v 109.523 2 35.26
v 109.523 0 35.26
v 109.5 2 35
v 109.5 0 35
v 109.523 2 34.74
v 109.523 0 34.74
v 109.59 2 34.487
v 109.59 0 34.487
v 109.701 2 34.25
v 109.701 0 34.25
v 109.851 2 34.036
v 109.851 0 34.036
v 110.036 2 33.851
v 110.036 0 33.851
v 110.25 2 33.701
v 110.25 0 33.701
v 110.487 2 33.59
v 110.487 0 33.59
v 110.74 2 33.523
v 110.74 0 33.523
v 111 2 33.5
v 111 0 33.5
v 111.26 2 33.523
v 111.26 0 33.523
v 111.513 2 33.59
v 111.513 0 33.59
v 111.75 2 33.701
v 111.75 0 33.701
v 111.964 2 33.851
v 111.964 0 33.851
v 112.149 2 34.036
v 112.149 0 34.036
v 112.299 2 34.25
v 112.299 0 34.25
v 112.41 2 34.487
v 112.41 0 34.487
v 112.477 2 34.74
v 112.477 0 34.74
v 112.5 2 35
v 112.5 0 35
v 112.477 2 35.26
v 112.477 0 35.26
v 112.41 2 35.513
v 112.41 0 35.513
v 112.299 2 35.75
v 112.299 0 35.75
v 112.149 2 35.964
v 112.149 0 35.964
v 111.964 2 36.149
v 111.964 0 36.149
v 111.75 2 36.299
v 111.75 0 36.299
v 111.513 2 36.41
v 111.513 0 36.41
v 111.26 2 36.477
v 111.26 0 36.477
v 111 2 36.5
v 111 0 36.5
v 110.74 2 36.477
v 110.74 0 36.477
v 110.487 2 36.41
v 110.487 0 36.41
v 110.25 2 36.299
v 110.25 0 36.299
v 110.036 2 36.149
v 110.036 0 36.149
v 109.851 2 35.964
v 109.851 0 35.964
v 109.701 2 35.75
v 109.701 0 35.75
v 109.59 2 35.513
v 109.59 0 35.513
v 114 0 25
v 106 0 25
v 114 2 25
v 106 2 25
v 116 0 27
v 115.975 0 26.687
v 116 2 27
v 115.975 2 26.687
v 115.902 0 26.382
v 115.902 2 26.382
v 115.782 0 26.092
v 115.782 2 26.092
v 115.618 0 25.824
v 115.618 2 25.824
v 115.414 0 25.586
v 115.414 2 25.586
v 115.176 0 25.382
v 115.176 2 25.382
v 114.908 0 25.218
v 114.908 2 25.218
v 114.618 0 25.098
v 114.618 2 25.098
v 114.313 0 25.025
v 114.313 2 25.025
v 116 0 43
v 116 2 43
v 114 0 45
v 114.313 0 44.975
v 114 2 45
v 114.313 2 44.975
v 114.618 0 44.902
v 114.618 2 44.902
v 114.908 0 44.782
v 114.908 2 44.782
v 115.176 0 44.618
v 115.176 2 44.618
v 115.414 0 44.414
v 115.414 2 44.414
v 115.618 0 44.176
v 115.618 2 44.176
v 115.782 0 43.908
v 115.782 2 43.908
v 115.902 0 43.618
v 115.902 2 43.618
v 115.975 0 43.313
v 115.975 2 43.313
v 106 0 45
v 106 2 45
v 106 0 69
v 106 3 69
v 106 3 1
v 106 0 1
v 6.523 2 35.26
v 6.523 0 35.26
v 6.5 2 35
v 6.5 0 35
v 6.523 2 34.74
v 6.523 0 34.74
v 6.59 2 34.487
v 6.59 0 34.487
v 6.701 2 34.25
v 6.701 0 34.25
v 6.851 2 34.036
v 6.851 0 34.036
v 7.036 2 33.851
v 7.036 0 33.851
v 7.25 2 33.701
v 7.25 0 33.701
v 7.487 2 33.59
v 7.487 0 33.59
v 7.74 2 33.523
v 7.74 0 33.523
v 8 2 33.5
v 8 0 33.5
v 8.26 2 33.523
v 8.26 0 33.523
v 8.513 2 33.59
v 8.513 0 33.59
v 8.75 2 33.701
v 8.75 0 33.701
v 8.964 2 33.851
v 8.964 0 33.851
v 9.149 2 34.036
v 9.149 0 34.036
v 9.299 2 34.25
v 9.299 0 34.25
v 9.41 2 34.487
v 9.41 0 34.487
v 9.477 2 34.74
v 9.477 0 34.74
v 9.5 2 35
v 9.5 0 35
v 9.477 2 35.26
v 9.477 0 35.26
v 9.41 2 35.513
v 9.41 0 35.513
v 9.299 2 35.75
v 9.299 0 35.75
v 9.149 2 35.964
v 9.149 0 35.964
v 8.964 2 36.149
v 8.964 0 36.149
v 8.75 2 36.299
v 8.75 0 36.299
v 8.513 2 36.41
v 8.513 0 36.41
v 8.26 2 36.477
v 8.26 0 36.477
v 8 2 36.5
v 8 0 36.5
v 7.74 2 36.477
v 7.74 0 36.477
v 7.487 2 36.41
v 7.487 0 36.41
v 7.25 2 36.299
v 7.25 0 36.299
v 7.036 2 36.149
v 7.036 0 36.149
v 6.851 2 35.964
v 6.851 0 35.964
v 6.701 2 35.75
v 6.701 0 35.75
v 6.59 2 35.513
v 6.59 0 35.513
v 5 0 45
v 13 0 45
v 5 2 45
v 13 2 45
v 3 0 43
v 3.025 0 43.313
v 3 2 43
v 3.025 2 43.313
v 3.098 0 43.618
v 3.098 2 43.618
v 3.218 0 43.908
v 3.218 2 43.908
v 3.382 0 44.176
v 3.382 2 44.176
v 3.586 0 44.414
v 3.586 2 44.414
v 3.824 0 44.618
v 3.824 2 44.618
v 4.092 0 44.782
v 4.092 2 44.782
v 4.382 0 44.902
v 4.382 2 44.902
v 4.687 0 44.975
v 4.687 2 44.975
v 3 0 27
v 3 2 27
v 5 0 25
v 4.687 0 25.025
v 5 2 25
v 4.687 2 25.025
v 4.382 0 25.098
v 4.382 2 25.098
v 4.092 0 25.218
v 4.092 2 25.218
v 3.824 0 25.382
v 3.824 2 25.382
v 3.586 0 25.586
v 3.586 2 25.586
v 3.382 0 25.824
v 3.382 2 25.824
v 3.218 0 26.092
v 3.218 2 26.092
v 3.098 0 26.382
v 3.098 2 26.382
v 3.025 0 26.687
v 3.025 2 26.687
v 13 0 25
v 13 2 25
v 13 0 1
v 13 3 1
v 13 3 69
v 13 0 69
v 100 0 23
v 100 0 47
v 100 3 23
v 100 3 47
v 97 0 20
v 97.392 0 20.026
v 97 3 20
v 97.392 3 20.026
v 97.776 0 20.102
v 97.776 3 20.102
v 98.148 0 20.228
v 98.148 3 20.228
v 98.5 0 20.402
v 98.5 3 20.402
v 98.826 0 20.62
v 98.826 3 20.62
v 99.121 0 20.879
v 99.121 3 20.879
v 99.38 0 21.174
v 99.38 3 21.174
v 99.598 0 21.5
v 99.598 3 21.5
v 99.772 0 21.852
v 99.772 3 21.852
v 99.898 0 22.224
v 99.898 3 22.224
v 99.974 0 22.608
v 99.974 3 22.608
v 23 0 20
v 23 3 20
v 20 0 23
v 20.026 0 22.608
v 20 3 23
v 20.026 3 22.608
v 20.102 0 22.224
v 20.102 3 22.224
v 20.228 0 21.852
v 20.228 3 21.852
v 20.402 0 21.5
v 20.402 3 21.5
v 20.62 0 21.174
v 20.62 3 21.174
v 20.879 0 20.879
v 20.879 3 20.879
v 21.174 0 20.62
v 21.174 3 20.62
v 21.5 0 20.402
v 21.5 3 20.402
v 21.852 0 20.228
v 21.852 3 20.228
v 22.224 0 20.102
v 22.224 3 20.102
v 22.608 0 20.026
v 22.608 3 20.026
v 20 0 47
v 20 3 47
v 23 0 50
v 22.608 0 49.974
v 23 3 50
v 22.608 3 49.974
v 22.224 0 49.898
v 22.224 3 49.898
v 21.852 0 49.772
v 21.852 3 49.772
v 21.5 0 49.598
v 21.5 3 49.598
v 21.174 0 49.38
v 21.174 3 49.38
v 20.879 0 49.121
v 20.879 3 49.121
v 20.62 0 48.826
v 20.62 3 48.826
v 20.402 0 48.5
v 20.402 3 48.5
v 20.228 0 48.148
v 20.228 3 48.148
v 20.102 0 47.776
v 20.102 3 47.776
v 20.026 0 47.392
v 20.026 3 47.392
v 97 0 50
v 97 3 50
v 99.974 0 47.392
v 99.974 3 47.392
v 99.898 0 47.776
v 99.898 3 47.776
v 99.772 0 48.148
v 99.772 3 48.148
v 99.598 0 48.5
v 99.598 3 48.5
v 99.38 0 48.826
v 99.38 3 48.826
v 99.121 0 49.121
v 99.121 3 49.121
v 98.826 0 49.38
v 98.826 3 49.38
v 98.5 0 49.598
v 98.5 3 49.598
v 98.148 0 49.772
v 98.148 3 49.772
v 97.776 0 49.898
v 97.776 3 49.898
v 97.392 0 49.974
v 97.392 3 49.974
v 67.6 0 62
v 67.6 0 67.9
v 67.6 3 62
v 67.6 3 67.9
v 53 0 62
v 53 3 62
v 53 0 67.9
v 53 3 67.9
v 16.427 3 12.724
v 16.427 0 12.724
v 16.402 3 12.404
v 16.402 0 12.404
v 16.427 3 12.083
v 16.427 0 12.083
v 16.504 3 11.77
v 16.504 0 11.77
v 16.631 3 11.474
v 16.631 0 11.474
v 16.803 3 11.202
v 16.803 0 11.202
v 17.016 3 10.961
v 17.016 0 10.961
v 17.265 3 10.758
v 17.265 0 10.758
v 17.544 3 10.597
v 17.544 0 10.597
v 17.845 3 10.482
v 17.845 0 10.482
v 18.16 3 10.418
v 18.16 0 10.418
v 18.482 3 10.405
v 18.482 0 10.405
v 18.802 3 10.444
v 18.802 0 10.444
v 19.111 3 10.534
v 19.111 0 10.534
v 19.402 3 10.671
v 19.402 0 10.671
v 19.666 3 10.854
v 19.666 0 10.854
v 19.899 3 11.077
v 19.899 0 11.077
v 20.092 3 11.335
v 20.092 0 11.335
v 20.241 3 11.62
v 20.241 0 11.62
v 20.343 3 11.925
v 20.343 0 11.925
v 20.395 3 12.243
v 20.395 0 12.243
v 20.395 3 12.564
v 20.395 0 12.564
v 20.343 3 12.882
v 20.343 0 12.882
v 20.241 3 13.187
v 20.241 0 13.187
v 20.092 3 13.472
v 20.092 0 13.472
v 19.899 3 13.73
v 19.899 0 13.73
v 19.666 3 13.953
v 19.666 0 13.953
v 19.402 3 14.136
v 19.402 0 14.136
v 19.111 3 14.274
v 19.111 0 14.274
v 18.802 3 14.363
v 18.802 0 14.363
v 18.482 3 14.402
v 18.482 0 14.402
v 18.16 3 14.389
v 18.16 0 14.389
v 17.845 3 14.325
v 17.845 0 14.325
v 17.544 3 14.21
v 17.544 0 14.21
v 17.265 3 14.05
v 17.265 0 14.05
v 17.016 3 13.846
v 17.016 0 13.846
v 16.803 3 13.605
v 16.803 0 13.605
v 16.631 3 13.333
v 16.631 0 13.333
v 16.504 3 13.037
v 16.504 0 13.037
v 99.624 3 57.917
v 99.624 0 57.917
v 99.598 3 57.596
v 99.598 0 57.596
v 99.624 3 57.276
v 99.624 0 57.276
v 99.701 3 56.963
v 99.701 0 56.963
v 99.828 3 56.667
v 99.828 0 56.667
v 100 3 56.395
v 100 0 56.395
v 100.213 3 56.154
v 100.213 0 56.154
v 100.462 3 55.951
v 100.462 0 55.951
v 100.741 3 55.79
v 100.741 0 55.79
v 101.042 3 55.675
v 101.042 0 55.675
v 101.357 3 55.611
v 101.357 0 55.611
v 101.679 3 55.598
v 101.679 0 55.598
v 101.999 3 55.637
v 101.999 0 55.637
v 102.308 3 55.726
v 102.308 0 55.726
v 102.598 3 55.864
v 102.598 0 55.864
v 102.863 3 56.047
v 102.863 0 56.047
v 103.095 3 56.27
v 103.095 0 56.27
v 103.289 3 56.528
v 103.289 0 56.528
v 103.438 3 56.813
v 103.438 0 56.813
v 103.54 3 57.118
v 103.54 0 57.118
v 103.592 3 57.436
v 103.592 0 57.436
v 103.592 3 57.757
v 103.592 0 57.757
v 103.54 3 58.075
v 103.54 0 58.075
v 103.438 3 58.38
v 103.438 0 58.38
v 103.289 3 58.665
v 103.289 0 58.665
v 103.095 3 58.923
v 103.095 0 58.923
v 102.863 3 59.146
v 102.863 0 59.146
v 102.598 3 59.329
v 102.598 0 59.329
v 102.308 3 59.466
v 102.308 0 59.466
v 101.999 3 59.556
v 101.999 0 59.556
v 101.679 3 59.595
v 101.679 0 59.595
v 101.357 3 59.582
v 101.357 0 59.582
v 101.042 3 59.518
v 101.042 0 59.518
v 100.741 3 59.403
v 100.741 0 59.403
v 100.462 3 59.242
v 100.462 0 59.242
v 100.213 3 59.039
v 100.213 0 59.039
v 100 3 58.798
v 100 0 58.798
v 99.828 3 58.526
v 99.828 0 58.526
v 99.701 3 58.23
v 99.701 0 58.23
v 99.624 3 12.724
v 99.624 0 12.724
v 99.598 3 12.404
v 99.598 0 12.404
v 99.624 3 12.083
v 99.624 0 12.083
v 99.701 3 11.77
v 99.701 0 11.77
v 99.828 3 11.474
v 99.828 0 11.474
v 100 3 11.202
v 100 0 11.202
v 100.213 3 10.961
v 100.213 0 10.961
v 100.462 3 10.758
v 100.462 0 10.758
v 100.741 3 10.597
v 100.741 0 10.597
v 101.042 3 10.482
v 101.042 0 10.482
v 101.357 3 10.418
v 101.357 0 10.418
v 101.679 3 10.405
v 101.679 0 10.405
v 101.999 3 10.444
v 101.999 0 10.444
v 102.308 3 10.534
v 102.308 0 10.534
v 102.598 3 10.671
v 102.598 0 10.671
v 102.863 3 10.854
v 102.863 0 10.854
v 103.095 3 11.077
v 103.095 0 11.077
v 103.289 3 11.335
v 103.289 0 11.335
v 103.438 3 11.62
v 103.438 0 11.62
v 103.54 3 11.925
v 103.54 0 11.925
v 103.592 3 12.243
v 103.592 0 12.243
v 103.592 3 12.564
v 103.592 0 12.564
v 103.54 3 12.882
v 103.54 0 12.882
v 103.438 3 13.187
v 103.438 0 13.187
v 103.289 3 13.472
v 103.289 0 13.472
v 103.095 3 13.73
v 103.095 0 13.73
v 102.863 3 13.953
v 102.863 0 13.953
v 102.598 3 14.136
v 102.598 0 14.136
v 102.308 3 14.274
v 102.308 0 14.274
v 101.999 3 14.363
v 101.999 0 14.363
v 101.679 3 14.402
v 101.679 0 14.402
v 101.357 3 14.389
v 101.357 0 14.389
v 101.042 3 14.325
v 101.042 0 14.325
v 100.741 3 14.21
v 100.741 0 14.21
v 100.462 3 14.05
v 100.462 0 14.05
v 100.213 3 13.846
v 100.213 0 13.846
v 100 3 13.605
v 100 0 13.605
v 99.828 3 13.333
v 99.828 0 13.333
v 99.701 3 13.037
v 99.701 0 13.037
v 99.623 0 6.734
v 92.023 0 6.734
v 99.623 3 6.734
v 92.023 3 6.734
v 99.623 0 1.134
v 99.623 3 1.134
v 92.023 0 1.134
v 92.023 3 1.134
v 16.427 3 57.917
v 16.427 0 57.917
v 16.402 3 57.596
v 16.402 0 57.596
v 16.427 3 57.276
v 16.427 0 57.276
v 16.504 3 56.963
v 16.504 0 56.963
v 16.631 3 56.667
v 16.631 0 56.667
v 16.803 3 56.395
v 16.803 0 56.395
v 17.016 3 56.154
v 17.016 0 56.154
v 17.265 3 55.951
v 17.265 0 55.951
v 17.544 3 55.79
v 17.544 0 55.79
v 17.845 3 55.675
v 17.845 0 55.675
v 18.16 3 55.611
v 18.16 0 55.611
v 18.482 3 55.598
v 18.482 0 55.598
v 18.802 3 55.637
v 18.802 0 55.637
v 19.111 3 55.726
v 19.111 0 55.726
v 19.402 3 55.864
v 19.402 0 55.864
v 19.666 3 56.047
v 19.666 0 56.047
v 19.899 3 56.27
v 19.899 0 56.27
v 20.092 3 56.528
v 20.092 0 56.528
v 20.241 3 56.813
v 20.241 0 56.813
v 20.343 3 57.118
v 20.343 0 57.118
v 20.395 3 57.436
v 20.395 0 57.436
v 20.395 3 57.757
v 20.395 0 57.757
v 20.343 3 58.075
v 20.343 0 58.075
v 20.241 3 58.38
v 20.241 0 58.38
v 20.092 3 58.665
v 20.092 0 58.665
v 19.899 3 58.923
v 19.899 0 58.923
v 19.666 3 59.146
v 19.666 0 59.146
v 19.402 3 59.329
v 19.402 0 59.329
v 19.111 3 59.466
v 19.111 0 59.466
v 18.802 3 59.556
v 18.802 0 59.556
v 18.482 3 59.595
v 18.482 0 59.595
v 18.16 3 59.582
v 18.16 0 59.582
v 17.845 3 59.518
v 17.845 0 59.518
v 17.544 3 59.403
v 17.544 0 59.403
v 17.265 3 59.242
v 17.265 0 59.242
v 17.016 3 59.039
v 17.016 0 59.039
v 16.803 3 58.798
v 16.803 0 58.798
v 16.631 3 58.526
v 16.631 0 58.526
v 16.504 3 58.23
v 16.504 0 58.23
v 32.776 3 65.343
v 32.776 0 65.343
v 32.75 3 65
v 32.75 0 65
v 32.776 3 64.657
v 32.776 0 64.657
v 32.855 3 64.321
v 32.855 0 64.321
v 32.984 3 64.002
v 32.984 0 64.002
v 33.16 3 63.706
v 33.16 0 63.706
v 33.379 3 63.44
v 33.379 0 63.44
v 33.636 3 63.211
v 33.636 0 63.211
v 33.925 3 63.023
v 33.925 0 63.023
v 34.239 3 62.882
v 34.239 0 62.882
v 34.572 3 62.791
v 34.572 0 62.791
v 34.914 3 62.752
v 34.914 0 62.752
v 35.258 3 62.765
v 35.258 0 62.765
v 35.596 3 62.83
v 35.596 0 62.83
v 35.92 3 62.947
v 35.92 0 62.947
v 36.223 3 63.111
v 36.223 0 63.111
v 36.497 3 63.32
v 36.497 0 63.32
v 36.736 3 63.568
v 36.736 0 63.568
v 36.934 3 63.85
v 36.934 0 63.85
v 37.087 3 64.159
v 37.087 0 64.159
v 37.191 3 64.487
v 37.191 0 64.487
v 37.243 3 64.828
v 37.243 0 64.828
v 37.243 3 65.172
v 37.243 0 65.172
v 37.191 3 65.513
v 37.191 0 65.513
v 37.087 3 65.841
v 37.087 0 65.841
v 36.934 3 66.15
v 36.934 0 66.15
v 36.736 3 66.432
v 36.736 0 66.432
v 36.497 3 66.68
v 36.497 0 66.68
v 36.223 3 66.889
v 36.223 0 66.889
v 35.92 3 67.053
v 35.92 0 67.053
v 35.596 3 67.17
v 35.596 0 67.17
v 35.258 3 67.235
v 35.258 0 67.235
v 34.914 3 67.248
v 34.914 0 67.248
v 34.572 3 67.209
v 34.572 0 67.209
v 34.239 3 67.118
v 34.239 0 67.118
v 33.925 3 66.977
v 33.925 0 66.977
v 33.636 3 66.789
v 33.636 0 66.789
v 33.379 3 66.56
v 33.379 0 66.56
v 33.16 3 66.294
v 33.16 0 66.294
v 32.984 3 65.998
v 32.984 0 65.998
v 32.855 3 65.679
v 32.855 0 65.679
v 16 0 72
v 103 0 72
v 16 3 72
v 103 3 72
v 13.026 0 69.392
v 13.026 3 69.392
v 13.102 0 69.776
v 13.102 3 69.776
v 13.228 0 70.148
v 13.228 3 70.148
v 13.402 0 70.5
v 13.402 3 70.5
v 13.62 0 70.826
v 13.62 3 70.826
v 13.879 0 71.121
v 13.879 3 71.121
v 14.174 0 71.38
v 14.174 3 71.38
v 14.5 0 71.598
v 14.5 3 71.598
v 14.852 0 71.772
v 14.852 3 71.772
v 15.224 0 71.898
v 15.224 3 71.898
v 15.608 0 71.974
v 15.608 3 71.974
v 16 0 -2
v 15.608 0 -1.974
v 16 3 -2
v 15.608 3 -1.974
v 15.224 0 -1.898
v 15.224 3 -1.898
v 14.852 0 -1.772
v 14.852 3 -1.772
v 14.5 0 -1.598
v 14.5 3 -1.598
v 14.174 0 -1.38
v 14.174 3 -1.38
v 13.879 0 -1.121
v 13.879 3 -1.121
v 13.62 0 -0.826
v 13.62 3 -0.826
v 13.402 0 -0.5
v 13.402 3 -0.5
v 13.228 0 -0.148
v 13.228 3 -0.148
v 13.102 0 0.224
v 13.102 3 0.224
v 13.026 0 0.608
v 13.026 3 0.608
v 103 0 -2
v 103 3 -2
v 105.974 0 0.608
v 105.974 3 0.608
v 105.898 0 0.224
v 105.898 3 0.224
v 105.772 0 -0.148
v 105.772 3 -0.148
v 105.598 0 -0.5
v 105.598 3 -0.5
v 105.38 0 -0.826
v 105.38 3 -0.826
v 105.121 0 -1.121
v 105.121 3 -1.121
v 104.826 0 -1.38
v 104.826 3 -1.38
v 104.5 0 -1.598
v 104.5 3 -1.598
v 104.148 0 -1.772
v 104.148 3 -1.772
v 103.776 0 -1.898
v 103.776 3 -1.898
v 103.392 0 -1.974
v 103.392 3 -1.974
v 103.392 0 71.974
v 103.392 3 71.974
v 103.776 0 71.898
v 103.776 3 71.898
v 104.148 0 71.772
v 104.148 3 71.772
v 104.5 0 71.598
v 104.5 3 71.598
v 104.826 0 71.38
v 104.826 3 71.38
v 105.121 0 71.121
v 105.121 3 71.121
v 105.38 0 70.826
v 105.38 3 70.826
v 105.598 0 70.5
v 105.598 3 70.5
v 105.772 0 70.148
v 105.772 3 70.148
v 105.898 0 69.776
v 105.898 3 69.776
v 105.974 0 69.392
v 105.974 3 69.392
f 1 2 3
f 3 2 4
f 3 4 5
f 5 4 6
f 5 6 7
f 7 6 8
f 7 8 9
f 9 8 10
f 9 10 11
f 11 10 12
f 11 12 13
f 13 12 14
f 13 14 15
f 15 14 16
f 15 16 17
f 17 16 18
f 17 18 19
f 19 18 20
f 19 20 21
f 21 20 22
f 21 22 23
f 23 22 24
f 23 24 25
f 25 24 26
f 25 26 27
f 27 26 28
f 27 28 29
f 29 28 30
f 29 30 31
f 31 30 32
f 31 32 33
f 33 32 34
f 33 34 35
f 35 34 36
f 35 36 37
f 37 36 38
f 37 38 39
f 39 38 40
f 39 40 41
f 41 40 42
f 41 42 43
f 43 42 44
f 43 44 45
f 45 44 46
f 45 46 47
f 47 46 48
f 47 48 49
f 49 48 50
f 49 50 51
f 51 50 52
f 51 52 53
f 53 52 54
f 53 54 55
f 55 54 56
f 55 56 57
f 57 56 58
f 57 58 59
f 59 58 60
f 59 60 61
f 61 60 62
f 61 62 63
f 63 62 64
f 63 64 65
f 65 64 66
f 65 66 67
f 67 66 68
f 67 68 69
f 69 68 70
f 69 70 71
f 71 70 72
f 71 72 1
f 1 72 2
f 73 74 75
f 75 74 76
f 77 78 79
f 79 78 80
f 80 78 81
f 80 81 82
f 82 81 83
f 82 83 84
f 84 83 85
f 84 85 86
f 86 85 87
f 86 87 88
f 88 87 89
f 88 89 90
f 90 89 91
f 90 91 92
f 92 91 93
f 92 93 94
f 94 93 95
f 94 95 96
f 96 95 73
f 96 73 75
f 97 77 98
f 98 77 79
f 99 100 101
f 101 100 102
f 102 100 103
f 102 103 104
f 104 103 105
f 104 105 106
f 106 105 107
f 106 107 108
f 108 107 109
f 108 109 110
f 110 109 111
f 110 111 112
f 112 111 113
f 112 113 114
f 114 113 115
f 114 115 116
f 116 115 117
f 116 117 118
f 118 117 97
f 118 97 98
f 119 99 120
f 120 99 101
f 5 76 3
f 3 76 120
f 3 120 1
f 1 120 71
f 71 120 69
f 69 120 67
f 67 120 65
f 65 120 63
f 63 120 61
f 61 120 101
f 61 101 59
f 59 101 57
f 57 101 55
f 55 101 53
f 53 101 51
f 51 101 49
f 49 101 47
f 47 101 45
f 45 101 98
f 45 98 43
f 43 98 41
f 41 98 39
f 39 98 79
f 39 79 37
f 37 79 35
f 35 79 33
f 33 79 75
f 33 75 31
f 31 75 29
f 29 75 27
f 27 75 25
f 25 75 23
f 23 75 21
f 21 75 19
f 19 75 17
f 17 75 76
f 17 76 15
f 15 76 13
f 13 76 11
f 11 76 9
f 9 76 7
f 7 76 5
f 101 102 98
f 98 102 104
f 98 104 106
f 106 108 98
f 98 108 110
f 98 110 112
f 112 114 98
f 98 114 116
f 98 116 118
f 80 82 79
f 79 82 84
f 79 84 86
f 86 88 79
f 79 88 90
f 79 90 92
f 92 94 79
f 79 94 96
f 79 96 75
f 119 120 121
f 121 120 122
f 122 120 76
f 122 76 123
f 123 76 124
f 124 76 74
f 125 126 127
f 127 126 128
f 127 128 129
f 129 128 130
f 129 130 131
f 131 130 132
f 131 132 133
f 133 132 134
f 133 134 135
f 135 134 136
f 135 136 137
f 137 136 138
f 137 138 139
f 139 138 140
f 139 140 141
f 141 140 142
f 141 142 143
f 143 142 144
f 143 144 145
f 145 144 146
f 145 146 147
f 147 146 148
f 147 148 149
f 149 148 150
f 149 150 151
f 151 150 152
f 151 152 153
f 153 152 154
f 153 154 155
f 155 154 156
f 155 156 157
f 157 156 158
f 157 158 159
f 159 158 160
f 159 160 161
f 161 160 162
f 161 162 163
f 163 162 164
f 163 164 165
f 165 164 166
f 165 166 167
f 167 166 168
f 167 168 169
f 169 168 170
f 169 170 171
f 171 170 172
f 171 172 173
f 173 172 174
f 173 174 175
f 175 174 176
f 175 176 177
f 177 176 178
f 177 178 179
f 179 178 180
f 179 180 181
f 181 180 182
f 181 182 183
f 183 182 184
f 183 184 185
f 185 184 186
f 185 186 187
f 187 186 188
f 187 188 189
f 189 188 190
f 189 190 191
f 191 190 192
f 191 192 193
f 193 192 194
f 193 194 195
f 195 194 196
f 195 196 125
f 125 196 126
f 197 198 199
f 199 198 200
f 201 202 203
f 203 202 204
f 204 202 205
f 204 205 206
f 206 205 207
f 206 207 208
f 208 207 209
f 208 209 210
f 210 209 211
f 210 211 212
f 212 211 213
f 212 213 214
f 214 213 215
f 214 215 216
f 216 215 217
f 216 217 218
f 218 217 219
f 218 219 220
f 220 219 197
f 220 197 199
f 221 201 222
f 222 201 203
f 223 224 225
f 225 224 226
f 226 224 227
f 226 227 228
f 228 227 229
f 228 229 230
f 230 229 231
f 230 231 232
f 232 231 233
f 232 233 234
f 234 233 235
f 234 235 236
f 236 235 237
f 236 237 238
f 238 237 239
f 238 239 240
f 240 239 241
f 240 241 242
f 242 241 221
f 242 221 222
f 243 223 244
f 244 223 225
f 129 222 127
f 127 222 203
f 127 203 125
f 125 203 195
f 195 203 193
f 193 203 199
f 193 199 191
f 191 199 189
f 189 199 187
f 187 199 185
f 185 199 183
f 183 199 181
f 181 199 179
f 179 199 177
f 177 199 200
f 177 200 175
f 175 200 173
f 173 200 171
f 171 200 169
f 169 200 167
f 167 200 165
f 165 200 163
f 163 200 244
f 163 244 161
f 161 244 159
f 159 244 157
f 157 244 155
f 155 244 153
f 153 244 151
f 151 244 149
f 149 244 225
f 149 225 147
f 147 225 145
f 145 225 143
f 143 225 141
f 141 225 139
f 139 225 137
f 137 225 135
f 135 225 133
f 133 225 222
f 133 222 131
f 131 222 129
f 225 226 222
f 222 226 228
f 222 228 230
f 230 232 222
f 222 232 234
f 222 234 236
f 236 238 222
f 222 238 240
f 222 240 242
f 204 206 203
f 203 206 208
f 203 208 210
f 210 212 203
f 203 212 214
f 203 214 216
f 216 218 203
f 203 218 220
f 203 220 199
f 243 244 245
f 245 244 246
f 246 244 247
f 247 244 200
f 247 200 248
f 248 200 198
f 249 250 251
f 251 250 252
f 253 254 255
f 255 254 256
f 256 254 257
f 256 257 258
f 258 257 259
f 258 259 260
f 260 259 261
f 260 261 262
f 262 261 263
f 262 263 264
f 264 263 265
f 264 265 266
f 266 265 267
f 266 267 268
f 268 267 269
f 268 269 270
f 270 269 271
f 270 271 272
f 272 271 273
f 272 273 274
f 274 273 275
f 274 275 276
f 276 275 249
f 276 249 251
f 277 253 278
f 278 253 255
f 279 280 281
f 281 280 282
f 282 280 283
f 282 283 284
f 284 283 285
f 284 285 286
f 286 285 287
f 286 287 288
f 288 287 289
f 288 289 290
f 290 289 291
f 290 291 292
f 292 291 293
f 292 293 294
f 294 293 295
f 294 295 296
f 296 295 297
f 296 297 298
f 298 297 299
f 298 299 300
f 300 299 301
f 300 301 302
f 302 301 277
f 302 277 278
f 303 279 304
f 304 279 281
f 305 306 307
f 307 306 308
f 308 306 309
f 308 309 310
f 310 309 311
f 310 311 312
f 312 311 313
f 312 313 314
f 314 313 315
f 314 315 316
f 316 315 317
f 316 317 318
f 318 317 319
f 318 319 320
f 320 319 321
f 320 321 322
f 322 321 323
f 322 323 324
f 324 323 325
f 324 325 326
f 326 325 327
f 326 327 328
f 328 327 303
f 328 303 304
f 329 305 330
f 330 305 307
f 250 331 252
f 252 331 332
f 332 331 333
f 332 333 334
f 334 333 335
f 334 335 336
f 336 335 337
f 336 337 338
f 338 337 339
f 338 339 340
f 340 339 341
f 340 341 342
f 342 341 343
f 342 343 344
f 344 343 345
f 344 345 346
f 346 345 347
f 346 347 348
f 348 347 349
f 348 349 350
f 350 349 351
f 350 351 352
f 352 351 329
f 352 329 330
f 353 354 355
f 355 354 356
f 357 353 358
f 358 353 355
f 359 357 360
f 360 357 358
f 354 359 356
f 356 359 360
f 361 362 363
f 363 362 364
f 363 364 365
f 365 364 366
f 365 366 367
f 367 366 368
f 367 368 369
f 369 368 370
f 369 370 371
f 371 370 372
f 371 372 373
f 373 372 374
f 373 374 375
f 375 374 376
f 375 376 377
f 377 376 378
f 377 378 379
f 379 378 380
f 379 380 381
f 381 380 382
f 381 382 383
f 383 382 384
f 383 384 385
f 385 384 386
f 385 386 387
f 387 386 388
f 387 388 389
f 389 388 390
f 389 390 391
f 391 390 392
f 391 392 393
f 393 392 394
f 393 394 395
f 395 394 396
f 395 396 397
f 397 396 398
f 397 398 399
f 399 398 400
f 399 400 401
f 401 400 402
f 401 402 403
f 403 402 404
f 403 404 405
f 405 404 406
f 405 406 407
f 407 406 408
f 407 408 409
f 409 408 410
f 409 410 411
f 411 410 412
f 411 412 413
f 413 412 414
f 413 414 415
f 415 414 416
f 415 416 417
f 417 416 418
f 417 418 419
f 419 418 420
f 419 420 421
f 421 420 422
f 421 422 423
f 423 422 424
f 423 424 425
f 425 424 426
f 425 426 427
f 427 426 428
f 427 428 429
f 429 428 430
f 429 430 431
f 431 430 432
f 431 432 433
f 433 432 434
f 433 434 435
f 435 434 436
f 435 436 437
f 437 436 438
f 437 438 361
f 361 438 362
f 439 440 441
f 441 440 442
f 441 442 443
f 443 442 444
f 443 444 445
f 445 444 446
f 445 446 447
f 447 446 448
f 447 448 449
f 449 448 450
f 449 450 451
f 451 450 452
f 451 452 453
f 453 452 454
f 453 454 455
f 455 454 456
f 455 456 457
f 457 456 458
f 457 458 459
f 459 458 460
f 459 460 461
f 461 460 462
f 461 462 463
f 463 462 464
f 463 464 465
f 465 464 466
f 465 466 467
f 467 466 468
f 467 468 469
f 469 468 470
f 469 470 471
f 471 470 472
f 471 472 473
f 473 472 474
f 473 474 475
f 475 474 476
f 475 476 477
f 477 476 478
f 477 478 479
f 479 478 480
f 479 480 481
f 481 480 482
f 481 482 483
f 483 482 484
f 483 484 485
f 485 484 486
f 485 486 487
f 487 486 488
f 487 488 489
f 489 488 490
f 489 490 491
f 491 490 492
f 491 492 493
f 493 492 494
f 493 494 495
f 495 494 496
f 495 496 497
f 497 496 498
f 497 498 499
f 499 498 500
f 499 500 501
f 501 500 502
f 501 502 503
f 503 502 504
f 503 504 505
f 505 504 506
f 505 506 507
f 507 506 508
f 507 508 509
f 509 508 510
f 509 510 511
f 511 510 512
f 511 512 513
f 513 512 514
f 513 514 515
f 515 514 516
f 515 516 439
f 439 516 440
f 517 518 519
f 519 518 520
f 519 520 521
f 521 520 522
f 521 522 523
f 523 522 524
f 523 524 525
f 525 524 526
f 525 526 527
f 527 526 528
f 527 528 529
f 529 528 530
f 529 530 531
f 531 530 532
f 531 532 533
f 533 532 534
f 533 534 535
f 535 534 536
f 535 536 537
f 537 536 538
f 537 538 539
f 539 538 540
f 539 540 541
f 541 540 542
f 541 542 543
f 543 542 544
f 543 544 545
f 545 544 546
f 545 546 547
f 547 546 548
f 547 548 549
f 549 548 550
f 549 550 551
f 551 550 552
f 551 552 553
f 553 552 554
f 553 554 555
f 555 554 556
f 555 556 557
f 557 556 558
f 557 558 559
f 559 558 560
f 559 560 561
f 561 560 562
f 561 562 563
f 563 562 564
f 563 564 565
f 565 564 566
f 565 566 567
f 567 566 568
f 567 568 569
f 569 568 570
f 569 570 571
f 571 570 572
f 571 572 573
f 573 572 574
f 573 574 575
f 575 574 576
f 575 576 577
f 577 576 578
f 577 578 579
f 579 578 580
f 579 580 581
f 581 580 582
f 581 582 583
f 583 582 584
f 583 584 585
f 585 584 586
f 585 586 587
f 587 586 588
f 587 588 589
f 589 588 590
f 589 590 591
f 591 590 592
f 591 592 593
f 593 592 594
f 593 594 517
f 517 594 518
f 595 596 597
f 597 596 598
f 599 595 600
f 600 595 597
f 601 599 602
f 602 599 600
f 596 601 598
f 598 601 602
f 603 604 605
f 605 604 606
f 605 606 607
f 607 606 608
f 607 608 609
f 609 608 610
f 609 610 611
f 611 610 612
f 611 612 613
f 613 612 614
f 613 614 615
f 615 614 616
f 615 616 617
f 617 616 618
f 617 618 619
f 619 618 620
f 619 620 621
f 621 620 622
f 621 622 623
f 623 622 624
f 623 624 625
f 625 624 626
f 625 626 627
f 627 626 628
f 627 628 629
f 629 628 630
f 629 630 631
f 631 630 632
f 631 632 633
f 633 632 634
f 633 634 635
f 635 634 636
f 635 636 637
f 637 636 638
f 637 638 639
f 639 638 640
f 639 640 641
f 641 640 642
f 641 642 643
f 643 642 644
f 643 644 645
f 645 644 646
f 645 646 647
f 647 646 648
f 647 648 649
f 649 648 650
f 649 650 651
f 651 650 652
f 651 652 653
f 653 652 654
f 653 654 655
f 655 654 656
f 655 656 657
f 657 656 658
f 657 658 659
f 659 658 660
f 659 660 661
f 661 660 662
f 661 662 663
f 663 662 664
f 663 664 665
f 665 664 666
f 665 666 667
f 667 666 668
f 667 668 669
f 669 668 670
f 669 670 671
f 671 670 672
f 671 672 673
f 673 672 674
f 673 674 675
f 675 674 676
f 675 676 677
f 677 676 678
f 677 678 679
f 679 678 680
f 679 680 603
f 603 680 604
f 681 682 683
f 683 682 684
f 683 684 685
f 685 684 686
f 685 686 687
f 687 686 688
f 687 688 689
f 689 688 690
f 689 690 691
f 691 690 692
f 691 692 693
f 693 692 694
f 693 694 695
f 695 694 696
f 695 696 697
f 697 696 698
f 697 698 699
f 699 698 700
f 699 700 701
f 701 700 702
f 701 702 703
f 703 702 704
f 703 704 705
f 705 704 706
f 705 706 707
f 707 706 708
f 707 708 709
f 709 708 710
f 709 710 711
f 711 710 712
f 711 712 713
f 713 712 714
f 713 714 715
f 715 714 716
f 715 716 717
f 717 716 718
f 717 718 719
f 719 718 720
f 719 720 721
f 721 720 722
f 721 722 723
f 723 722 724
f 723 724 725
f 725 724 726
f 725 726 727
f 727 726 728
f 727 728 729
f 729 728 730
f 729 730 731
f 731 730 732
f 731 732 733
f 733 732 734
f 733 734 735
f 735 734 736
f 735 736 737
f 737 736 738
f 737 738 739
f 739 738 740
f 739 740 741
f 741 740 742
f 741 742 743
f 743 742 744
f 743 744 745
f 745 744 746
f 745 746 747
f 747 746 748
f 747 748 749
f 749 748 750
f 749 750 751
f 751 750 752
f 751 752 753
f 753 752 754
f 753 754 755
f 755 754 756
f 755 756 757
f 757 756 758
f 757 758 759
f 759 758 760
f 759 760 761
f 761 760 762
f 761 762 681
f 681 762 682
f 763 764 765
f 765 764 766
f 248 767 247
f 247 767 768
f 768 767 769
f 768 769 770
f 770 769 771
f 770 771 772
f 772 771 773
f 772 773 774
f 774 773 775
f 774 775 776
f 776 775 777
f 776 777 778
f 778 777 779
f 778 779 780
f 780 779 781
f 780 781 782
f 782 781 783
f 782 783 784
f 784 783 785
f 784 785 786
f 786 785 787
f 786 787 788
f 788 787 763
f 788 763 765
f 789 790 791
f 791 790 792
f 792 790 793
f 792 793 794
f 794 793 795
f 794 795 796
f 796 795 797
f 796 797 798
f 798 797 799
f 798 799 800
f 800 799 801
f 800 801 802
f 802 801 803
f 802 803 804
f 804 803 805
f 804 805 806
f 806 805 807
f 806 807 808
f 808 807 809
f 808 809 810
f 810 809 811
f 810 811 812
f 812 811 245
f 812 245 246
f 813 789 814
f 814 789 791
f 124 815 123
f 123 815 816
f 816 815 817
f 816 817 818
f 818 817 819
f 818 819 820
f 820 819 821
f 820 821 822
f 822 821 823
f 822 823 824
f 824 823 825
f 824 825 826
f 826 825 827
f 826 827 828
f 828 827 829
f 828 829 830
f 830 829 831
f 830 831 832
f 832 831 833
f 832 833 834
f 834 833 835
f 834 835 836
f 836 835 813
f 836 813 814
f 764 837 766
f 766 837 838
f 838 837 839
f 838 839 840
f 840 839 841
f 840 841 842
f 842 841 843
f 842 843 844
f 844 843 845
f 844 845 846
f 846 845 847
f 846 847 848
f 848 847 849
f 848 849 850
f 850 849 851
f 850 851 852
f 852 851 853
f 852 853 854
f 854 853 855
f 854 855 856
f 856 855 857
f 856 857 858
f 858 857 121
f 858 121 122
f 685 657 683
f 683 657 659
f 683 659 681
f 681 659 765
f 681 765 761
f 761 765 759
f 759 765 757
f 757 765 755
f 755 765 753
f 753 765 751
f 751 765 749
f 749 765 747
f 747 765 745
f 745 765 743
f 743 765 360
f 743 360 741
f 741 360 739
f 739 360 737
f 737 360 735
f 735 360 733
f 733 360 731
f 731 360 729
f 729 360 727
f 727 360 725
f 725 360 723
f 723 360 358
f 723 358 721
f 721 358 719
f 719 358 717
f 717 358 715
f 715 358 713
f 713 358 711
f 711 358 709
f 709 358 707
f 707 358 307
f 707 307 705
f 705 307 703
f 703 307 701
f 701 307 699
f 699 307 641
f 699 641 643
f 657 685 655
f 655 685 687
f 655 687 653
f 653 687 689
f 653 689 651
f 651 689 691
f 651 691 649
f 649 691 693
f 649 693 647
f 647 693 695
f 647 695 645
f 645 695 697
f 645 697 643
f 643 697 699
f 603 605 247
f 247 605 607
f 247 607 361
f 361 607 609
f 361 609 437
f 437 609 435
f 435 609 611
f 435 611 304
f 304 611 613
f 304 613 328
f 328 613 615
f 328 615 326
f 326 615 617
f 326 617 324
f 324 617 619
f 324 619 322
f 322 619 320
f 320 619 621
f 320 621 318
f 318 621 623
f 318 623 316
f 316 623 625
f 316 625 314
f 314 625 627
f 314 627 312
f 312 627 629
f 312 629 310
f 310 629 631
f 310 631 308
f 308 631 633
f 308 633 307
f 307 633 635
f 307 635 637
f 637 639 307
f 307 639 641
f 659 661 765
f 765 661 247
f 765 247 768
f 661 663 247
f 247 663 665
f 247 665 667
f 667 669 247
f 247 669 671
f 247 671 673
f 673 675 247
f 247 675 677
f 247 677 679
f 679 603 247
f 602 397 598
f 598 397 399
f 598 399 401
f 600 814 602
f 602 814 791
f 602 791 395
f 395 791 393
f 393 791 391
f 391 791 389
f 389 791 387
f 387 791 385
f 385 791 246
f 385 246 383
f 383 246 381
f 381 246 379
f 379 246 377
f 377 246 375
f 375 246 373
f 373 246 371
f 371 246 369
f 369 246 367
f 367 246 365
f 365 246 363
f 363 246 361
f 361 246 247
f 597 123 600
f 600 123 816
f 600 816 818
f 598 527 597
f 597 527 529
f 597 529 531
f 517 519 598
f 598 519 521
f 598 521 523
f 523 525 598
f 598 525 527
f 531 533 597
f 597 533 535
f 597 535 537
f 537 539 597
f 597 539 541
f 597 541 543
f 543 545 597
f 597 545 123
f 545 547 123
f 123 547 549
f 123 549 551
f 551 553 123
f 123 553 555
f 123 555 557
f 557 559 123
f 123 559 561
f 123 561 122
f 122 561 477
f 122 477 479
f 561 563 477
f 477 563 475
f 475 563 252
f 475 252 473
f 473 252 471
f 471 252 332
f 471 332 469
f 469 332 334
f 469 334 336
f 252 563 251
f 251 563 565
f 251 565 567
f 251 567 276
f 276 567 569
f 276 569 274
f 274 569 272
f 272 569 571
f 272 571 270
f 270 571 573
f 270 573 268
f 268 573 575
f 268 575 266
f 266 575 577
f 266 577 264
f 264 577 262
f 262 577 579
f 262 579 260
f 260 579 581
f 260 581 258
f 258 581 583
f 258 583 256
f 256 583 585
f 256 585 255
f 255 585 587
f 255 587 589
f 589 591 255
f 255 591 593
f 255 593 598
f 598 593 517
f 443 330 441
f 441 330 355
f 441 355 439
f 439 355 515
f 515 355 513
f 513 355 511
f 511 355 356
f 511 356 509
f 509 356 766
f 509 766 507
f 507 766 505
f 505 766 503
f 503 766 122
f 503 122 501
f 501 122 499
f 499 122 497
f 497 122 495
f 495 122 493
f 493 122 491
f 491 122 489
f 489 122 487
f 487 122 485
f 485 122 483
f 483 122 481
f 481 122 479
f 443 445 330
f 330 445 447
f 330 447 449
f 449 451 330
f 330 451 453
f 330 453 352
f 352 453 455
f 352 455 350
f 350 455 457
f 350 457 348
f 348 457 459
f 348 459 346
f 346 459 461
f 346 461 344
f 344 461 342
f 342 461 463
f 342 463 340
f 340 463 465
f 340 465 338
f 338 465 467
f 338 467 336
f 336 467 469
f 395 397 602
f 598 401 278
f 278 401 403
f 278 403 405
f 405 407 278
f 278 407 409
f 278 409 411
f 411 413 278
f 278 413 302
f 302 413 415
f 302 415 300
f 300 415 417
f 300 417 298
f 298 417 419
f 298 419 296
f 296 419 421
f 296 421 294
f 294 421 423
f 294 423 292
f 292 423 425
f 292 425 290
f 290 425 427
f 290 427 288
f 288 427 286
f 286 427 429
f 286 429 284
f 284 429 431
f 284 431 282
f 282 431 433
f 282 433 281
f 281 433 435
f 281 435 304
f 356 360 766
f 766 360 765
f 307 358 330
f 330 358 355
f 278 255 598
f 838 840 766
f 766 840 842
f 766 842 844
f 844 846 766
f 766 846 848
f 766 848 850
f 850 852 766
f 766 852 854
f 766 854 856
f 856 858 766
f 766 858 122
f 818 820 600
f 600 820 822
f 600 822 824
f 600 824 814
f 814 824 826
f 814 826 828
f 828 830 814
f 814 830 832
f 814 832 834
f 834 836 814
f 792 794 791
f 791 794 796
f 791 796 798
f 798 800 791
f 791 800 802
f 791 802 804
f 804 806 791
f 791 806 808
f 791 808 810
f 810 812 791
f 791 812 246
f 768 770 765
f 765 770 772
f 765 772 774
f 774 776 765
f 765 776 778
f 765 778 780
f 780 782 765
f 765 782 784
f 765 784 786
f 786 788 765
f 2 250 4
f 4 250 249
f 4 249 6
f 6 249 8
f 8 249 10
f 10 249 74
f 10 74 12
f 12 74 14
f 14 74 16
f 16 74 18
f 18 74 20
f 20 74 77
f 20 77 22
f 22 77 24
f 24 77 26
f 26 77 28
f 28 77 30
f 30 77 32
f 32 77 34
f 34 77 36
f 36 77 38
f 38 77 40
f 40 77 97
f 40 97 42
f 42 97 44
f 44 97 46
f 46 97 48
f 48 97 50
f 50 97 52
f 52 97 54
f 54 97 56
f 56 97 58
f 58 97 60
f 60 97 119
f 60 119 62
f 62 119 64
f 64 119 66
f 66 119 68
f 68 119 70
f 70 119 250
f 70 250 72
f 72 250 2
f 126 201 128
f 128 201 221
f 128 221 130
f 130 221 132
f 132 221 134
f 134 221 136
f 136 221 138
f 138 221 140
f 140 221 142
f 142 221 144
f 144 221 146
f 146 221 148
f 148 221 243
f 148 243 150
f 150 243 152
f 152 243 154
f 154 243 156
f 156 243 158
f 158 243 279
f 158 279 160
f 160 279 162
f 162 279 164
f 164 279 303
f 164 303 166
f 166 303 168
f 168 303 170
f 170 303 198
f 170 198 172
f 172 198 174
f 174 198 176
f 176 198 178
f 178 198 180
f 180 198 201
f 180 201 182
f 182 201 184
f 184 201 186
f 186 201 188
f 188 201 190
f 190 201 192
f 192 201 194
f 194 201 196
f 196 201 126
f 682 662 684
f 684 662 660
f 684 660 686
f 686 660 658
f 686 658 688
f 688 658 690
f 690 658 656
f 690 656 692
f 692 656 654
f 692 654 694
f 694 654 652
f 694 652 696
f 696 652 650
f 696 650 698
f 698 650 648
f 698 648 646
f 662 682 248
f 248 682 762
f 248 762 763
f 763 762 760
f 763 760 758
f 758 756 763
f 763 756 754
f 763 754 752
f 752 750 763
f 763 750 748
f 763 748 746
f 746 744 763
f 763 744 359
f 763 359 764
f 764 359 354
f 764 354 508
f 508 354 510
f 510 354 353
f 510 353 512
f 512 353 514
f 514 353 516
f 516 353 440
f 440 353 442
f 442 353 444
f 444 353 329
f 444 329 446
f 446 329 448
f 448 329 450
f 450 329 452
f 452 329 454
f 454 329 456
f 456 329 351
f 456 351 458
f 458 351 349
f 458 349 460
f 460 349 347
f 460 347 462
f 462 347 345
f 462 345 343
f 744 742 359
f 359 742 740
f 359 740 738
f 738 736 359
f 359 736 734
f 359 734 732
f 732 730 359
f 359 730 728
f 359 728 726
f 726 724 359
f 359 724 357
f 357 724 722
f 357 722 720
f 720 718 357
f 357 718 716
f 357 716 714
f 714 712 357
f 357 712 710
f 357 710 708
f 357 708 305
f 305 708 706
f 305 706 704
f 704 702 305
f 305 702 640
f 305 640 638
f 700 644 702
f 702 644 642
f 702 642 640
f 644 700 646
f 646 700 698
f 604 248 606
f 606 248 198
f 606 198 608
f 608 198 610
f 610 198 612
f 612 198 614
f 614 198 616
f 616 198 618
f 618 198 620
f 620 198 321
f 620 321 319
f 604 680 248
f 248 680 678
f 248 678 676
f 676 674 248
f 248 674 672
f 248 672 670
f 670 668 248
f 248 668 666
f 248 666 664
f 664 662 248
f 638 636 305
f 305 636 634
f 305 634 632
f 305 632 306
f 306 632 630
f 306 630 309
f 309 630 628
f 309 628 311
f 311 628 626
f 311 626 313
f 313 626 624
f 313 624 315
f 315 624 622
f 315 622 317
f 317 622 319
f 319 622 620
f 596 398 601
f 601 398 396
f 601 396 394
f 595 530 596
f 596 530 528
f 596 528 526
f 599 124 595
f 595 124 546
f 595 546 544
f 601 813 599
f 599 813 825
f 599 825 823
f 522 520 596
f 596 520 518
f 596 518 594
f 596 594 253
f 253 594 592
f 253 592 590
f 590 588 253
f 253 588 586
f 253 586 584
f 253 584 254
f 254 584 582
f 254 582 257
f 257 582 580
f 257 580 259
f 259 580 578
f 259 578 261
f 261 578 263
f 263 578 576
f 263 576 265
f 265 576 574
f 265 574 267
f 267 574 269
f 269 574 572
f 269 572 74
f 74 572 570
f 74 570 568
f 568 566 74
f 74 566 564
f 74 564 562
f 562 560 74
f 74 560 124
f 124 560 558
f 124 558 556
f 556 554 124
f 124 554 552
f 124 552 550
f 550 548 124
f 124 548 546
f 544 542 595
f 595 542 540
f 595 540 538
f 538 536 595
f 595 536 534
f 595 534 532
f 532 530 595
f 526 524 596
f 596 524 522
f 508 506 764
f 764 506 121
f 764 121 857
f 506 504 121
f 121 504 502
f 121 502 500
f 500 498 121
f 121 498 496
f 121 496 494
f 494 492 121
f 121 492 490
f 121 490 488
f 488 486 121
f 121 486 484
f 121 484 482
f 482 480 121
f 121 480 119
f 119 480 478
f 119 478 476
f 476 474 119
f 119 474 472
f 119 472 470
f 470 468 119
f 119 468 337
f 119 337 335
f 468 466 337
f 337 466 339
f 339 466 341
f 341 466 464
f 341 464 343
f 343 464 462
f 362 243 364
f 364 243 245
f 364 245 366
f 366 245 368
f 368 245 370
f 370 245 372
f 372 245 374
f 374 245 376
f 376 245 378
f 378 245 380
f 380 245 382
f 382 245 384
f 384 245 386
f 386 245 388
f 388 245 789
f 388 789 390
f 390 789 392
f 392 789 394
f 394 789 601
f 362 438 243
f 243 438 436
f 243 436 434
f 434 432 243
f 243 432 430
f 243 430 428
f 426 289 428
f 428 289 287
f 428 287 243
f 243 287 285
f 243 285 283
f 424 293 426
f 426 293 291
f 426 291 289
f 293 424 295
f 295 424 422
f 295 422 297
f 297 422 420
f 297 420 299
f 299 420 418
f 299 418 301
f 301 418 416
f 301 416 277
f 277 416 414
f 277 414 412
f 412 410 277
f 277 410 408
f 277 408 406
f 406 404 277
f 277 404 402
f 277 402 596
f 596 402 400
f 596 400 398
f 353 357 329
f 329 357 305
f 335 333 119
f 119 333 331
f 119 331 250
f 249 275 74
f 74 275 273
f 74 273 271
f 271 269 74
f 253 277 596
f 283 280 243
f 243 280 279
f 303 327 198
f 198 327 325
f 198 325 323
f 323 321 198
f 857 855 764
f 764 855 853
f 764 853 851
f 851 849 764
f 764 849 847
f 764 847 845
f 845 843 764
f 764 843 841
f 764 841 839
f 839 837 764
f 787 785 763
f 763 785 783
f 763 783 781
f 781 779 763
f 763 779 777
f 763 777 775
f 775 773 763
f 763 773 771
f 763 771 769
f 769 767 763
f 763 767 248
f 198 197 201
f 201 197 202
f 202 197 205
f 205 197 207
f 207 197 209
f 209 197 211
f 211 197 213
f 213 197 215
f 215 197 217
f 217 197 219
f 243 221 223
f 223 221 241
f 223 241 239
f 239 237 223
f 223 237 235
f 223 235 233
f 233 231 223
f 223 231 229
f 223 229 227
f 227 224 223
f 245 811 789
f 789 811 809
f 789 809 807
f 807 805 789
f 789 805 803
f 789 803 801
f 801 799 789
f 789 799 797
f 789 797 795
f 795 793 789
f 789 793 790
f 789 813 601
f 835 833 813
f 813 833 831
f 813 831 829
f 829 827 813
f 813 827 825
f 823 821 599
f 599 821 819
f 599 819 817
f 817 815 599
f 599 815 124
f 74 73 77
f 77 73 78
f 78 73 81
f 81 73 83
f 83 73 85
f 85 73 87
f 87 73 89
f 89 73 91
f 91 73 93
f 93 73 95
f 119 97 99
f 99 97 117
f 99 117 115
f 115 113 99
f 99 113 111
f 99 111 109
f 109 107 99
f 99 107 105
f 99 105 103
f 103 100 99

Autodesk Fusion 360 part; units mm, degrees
sketch "Sketch1" plane through (0, 0, 0) normal (0, 1, 0) x (1, 0, 0)
  circle A0 centre (18.4015, -12.4035) radius 2
  line L0 (-11, -35) -> (125, -35)
  line L1 (60, 10) -> (60, -83.0941)
  circle A1 centre (101.5985, -12.4035) radius 2
  circle A2 centre (18.4015, -57.5965) radius 2
  circle A3 centre (101.5985, -57.5965) radius 2
  line L2 (5, -45) -> (13, -45)
  line L3 (13, -45) -> (13, -25)
  line L4 (13, -25) -> (5, -25)
  line L5 (3, -27) -> (3, -43)
  circle A4 centre (8, -35) radius 1.5
  line L6 (97, -50) -> (23, -50)
  line L7 (20, -47) -> (20, -23)
  line L8 (23, -20) -> (97, -20)
  line L9 (100, -23) -> (100, -47)
  arc A5 (20, -47) -> (23, -50) centre (23, -47) ccw
  arc A6 (23, -20) -> (20, -23) centre (23, -23) ccw
  arc A7 (97, -50) -> (100, -47) centre (97, -47) ccw
  arc A8 (100, -23) -> (97, -20) centre (97, -23) ccw
  arc A9 (3, -43) -> (5, -45) centre (5, -43) ccw
  arc A10 (5, -25) -> (3, -27) centre (5, -27) ccw
  line L10 (106, -45) -> (114, -45)
  line L11 (116, -43) -> (116, -27)
  line L12 (114, -25) -> (106, -25)
  line L13 (106, -25) -> (106, -45)
  arc A11 (114, -45) -> (116, -43) centre (114, -43) ccw
  arc A12 (116, -27) -> (114, -25) centre (114, -27) ccw
  circle A13 centre (111, -35) radius 1.5
  line L14 (92.023, -6.7335) -> (99.623, -6.7335)
  line L15 (99.623, -6.7335) -> (99.623, -1.1335)
  line L16 (99.623, -1.1335) -> (92.023, -1.1335)
  line L17 (92.023, -1.1335) -> (92.023, -6.7335)
  circle A14 centre (35, -65) radius 2.25
  line L18 (53, -62) -> (67.6, -62)
  line L19 (67.6, -62) -> (67.6, -67.9)
  line L20 (67.6, -67.9) -> (53, -67.9)
  line L21 (53, -67.9) -> (53, -62)
  line L22 (13, -1) -> (13, -69)
  line L23 (16, -72) -> (103, -72)
  line L24 (106, -69) -> (106, -1)
  line L25 (103, 2) -> (16, 2)
  arc A15 (16, 2) -> (13, -1) centre (16, -1) ccw
  arc A16 (106, -1) -> (103, 2) centre (103, -1) ccw
  arc A17 (13, -69) -> (16, -72) centre (16, -69) ccw
  arc A18 (103, -72) -> (106, -69) centre (103, -69) ccw
  point P0 (0, -70)
  point P1 (3, -45)
  point P2 (116, -45)
  point P3 (109, -75)
  dimension "d8" = 4
  dimension "d11" = 10
  dimension "d12" = 3
  dimension "d17" = 3
  dimension "d18" = 3
  dimension "d19" = 3
  dimension "d20" = 3
  dimension "d21" = 2
  dimension "d22" = 2
  dimension "d33" = 10
  dimension "d34" = 2
  dimension "d35" = 2
  dimension "d36" = 3
  dimension "d51" = 7.6
  dimension "d52" = 5.6
  dimension "d53" = 4.5
  dimension "d54" = 5.9
  dimension "d55" = 14.6
  dimension "d63" = 3
  dimension "d64" = 3
  dimension "d65" = 3
  dimension "d66" = 3
extrude "Extrude10" add sketch "Sketch1" along normal blind 3 contours L0 L1 L3 L7 L8 A6 L22 L25 A15 | L0 L1 L3 L6 L7 A5 L18 L20 L21 L22 L23 A17 | L0 L1 L8 L9 A8 L13 L24 L25 A16 | L0 L1 L6 L9 A7 L13 L18 L19 L20 L23 L24 A18
extrude "Extrude11" add sketch "Sketch1" along normal blind 2 contours L0 L3 L4 L5 A4 A10 L22 | L0 L2 L3 L5 A4 A9 L22 | L0 L11 L12 L13 A12 A13 L24 | L0 L10 L11 L13 A11 A13 L24
